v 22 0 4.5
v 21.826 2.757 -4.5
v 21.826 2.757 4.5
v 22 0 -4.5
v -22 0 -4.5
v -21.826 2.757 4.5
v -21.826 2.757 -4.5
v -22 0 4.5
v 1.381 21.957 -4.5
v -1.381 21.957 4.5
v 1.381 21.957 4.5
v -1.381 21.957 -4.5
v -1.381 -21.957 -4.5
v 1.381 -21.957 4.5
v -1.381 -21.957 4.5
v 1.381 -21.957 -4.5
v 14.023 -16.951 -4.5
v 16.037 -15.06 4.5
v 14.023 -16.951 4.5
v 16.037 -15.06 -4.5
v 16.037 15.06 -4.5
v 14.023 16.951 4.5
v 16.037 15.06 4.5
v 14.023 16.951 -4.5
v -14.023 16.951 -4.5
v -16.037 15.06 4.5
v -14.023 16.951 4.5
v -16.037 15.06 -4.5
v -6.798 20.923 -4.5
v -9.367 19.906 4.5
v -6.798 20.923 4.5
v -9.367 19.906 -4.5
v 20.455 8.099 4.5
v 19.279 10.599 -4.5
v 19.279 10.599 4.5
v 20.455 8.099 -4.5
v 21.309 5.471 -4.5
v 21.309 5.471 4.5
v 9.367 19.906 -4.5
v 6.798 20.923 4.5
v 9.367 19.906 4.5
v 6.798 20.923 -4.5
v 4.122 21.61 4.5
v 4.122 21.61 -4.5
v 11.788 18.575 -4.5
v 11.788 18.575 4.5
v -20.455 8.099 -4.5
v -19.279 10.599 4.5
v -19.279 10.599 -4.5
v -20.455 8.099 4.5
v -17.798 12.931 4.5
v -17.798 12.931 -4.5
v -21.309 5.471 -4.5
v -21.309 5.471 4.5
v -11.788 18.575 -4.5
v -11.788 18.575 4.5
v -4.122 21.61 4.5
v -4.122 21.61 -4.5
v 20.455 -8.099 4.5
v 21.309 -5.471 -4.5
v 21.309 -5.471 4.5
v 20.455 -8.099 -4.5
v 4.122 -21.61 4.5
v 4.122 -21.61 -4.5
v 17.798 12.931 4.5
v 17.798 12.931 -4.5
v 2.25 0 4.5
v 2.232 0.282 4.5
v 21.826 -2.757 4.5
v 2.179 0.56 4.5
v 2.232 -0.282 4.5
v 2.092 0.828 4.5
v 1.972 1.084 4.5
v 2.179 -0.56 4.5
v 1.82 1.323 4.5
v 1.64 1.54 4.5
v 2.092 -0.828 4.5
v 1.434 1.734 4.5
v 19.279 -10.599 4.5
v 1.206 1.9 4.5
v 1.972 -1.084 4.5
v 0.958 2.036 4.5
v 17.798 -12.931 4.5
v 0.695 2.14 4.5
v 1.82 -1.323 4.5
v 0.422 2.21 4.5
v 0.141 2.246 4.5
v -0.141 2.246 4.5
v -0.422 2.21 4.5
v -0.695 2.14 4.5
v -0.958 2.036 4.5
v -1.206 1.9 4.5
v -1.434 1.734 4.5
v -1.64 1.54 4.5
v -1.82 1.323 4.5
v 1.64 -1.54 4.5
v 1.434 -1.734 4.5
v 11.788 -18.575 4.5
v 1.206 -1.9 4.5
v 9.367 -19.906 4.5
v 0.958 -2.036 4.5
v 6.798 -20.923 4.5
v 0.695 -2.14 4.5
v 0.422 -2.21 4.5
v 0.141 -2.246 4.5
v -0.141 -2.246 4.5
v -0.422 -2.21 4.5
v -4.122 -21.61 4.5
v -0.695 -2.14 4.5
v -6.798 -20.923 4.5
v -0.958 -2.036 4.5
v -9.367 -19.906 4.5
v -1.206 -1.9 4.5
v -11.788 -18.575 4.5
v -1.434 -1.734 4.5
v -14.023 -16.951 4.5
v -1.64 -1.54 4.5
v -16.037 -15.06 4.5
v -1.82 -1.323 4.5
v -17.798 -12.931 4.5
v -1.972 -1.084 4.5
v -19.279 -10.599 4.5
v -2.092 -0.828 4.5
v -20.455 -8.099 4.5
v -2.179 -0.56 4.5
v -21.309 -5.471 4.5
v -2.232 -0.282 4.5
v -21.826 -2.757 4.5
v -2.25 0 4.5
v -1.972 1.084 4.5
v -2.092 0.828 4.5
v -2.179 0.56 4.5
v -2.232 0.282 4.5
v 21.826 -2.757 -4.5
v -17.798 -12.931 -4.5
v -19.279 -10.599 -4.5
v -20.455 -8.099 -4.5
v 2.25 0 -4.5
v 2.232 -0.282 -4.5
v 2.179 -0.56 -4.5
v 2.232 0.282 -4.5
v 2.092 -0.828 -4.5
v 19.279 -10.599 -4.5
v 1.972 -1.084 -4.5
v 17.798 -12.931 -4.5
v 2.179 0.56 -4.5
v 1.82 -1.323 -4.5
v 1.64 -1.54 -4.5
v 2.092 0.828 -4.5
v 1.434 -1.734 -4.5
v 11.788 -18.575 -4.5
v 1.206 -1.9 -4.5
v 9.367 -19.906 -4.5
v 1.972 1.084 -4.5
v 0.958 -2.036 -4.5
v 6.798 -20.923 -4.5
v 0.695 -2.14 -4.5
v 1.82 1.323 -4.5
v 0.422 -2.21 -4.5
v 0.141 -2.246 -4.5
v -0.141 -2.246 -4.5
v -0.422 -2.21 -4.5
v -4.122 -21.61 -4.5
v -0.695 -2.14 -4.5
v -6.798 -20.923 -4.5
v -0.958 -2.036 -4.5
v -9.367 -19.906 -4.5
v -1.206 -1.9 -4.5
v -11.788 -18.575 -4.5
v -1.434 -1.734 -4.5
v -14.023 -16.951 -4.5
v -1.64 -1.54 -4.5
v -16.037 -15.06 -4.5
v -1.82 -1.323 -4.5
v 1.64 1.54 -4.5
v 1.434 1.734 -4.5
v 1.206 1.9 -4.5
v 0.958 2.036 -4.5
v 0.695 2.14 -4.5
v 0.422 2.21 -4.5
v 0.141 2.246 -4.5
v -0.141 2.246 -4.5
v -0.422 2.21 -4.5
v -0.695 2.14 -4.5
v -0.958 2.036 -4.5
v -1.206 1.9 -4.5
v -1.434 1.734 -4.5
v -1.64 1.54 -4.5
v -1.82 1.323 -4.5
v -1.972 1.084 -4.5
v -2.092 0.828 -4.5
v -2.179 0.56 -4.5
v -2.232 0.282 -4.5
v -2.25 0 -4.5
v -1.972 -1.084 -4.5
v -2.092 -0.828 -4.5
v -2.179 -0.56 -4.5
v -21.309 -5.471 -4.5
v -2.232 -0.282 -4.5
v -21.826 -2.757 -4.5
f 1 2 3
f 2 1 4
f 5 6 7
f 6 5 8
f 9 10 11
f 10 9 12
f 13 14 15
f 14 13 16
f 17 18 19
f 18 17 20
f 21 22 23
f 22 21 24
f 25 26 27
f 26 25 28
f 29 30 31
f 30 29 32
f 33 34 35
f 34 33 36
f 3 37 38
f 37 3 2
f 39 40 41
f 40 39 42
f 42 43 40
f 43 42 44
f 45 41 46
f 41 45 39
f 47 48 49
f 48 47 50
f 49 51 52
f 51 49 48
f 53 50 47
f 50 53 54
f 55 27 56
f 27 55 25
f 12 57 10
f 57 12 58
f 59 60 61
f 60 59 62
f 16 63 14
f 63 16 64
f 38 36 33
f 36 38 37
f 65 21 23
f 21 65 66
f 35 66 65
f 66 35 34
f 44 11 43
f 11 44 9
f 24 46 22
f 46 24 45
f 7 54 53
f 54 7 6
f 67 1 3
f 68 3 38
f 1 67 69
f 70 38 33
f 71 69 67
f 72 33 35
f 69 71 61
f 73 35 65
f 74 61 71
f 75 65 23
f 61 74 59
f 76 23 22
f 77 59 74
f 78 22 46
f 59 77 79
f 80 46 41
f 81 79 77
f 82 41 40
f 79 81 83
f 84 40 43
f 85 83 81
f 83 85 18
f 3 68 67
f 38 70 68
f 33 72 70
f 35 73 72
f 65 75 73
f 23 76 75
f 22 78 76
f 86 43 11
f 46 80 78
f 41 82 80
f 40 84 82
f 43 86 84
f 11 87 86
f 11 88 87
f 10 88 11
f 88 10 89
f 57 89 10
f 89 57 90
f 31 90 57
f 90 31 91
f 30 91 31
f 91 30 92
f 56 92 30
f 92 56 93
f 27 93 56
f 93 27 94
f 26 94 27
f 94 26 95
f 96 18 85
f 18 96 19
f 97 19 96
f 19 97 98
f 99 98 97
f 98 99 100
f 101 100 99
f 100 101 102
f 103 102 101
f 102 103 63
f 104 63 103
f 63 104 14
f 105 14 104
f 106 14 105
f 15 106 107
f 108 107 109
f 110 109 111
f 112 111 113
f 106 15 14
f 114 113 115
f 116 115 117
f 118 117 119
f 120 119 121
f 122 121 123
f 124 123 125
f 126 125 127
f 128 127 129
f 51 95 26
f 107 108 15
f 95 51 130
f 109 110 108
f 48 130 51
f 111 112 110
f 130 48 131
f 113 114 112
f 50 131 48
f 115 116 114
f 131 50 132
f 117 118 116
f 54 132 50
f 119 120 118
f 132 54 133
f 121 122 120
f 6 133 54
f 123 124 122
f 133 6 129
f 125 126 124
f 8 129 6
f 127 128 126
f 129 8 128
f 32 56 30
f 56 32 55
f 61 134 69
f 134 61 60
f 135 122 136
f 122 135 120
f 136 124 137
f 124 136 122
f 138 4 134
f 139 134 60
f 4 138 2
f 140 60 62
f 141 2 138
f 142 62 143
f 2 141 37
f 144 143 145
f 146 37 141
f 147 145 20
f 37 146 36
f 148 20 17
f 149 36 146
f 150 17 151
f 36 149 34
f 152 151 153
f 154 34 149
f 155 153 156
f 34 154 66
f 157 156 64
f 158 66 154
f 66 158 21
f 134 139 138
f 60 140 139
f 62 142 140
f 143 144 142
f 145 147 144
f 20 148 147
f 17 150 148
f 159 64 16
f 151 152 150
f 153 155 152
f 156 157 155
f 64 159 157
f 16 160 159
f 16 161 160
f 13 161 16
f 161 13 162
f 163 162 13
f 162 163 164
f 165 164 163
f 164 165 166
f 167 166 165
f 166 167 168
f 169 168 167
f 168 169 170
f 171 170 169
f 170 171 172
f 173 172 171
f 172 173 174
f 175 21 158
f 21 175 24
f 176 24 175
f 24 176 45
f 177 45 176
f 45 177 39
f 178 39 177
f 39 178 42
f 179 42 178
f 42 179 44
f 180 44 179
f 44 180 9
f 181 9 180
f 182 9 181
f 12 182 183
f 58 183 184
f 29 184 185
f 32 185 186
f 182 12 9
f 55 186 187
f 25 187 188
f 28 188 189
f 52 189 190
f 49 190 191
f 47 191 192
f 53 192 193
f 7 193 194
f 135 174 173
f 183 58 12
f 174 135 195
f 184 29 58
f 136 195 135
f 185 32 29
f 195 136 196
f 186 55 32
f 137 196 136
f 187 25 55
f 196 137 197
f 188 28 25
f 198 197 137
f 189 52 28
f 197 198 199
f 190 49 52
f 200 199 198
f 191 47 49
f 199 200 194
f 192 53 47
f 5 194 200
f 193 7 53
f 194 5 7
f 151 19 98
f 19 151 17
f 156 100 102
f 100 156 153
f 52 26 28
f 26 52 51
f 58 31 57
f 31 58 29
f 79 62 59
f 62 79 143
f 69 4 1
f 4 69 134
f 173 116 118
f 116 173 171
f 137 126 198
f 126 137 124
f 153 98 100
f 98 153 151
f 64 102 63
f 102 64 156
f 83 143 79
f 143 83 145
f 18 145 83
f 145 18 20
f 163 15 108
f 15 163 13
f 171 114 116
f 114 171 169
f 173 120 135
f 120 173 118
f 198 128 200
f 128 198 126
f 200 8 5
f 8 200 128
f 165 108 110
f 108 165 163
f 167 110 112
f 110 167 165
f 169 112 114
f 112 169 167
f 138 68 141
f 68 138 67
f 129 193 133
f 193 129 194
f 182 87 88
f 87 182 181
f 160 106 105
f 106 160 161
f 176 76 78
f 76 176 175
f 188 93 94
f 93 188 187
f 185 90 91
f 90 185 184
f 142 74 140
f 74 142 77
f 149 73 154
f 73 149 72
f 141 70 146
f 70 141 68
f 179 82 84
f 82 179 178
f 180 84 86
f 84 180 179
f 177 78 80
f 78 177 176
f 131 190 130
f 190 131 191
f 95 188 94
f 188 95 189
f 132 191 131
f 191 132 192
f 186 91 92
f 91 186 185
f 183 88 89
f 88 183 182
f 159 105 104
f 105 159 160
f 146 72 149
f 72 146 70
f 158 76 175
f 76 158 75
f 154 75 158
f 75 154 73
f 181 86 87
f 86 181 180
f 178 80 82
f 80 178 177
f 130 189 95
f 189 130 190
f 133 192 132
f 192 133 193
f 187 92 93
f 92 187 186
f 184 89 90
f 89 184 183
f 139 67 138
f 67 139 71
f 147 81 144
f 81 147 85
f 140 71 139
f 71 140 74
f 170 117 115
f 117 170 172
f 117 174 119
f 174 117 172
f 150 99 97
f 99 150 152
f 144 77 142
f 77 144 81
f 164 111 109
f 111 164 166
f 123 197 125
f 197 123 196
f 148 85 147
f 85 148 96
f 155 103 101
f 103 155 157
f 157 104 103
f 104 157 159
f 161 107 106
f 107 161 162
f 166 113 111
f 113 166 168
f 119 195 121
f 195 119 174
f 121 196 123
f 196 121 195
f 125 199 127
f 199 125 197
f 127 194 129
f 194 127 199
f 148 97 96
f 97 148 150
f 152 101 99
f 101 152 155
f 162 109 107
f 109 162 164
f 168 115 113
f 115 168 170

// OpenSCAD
$fn = 50;


difference() {
	union() {
		translate(v = [0, 0, -4.5000000000]) {
			cylinder(h = 9, r = 22.0000000000);
		}
	}
	union() {
		translate(v = [0, 0, -100.0000000000]) {
			cylinder(h = 200, r = 2.2500000000);
		}
	}
}
